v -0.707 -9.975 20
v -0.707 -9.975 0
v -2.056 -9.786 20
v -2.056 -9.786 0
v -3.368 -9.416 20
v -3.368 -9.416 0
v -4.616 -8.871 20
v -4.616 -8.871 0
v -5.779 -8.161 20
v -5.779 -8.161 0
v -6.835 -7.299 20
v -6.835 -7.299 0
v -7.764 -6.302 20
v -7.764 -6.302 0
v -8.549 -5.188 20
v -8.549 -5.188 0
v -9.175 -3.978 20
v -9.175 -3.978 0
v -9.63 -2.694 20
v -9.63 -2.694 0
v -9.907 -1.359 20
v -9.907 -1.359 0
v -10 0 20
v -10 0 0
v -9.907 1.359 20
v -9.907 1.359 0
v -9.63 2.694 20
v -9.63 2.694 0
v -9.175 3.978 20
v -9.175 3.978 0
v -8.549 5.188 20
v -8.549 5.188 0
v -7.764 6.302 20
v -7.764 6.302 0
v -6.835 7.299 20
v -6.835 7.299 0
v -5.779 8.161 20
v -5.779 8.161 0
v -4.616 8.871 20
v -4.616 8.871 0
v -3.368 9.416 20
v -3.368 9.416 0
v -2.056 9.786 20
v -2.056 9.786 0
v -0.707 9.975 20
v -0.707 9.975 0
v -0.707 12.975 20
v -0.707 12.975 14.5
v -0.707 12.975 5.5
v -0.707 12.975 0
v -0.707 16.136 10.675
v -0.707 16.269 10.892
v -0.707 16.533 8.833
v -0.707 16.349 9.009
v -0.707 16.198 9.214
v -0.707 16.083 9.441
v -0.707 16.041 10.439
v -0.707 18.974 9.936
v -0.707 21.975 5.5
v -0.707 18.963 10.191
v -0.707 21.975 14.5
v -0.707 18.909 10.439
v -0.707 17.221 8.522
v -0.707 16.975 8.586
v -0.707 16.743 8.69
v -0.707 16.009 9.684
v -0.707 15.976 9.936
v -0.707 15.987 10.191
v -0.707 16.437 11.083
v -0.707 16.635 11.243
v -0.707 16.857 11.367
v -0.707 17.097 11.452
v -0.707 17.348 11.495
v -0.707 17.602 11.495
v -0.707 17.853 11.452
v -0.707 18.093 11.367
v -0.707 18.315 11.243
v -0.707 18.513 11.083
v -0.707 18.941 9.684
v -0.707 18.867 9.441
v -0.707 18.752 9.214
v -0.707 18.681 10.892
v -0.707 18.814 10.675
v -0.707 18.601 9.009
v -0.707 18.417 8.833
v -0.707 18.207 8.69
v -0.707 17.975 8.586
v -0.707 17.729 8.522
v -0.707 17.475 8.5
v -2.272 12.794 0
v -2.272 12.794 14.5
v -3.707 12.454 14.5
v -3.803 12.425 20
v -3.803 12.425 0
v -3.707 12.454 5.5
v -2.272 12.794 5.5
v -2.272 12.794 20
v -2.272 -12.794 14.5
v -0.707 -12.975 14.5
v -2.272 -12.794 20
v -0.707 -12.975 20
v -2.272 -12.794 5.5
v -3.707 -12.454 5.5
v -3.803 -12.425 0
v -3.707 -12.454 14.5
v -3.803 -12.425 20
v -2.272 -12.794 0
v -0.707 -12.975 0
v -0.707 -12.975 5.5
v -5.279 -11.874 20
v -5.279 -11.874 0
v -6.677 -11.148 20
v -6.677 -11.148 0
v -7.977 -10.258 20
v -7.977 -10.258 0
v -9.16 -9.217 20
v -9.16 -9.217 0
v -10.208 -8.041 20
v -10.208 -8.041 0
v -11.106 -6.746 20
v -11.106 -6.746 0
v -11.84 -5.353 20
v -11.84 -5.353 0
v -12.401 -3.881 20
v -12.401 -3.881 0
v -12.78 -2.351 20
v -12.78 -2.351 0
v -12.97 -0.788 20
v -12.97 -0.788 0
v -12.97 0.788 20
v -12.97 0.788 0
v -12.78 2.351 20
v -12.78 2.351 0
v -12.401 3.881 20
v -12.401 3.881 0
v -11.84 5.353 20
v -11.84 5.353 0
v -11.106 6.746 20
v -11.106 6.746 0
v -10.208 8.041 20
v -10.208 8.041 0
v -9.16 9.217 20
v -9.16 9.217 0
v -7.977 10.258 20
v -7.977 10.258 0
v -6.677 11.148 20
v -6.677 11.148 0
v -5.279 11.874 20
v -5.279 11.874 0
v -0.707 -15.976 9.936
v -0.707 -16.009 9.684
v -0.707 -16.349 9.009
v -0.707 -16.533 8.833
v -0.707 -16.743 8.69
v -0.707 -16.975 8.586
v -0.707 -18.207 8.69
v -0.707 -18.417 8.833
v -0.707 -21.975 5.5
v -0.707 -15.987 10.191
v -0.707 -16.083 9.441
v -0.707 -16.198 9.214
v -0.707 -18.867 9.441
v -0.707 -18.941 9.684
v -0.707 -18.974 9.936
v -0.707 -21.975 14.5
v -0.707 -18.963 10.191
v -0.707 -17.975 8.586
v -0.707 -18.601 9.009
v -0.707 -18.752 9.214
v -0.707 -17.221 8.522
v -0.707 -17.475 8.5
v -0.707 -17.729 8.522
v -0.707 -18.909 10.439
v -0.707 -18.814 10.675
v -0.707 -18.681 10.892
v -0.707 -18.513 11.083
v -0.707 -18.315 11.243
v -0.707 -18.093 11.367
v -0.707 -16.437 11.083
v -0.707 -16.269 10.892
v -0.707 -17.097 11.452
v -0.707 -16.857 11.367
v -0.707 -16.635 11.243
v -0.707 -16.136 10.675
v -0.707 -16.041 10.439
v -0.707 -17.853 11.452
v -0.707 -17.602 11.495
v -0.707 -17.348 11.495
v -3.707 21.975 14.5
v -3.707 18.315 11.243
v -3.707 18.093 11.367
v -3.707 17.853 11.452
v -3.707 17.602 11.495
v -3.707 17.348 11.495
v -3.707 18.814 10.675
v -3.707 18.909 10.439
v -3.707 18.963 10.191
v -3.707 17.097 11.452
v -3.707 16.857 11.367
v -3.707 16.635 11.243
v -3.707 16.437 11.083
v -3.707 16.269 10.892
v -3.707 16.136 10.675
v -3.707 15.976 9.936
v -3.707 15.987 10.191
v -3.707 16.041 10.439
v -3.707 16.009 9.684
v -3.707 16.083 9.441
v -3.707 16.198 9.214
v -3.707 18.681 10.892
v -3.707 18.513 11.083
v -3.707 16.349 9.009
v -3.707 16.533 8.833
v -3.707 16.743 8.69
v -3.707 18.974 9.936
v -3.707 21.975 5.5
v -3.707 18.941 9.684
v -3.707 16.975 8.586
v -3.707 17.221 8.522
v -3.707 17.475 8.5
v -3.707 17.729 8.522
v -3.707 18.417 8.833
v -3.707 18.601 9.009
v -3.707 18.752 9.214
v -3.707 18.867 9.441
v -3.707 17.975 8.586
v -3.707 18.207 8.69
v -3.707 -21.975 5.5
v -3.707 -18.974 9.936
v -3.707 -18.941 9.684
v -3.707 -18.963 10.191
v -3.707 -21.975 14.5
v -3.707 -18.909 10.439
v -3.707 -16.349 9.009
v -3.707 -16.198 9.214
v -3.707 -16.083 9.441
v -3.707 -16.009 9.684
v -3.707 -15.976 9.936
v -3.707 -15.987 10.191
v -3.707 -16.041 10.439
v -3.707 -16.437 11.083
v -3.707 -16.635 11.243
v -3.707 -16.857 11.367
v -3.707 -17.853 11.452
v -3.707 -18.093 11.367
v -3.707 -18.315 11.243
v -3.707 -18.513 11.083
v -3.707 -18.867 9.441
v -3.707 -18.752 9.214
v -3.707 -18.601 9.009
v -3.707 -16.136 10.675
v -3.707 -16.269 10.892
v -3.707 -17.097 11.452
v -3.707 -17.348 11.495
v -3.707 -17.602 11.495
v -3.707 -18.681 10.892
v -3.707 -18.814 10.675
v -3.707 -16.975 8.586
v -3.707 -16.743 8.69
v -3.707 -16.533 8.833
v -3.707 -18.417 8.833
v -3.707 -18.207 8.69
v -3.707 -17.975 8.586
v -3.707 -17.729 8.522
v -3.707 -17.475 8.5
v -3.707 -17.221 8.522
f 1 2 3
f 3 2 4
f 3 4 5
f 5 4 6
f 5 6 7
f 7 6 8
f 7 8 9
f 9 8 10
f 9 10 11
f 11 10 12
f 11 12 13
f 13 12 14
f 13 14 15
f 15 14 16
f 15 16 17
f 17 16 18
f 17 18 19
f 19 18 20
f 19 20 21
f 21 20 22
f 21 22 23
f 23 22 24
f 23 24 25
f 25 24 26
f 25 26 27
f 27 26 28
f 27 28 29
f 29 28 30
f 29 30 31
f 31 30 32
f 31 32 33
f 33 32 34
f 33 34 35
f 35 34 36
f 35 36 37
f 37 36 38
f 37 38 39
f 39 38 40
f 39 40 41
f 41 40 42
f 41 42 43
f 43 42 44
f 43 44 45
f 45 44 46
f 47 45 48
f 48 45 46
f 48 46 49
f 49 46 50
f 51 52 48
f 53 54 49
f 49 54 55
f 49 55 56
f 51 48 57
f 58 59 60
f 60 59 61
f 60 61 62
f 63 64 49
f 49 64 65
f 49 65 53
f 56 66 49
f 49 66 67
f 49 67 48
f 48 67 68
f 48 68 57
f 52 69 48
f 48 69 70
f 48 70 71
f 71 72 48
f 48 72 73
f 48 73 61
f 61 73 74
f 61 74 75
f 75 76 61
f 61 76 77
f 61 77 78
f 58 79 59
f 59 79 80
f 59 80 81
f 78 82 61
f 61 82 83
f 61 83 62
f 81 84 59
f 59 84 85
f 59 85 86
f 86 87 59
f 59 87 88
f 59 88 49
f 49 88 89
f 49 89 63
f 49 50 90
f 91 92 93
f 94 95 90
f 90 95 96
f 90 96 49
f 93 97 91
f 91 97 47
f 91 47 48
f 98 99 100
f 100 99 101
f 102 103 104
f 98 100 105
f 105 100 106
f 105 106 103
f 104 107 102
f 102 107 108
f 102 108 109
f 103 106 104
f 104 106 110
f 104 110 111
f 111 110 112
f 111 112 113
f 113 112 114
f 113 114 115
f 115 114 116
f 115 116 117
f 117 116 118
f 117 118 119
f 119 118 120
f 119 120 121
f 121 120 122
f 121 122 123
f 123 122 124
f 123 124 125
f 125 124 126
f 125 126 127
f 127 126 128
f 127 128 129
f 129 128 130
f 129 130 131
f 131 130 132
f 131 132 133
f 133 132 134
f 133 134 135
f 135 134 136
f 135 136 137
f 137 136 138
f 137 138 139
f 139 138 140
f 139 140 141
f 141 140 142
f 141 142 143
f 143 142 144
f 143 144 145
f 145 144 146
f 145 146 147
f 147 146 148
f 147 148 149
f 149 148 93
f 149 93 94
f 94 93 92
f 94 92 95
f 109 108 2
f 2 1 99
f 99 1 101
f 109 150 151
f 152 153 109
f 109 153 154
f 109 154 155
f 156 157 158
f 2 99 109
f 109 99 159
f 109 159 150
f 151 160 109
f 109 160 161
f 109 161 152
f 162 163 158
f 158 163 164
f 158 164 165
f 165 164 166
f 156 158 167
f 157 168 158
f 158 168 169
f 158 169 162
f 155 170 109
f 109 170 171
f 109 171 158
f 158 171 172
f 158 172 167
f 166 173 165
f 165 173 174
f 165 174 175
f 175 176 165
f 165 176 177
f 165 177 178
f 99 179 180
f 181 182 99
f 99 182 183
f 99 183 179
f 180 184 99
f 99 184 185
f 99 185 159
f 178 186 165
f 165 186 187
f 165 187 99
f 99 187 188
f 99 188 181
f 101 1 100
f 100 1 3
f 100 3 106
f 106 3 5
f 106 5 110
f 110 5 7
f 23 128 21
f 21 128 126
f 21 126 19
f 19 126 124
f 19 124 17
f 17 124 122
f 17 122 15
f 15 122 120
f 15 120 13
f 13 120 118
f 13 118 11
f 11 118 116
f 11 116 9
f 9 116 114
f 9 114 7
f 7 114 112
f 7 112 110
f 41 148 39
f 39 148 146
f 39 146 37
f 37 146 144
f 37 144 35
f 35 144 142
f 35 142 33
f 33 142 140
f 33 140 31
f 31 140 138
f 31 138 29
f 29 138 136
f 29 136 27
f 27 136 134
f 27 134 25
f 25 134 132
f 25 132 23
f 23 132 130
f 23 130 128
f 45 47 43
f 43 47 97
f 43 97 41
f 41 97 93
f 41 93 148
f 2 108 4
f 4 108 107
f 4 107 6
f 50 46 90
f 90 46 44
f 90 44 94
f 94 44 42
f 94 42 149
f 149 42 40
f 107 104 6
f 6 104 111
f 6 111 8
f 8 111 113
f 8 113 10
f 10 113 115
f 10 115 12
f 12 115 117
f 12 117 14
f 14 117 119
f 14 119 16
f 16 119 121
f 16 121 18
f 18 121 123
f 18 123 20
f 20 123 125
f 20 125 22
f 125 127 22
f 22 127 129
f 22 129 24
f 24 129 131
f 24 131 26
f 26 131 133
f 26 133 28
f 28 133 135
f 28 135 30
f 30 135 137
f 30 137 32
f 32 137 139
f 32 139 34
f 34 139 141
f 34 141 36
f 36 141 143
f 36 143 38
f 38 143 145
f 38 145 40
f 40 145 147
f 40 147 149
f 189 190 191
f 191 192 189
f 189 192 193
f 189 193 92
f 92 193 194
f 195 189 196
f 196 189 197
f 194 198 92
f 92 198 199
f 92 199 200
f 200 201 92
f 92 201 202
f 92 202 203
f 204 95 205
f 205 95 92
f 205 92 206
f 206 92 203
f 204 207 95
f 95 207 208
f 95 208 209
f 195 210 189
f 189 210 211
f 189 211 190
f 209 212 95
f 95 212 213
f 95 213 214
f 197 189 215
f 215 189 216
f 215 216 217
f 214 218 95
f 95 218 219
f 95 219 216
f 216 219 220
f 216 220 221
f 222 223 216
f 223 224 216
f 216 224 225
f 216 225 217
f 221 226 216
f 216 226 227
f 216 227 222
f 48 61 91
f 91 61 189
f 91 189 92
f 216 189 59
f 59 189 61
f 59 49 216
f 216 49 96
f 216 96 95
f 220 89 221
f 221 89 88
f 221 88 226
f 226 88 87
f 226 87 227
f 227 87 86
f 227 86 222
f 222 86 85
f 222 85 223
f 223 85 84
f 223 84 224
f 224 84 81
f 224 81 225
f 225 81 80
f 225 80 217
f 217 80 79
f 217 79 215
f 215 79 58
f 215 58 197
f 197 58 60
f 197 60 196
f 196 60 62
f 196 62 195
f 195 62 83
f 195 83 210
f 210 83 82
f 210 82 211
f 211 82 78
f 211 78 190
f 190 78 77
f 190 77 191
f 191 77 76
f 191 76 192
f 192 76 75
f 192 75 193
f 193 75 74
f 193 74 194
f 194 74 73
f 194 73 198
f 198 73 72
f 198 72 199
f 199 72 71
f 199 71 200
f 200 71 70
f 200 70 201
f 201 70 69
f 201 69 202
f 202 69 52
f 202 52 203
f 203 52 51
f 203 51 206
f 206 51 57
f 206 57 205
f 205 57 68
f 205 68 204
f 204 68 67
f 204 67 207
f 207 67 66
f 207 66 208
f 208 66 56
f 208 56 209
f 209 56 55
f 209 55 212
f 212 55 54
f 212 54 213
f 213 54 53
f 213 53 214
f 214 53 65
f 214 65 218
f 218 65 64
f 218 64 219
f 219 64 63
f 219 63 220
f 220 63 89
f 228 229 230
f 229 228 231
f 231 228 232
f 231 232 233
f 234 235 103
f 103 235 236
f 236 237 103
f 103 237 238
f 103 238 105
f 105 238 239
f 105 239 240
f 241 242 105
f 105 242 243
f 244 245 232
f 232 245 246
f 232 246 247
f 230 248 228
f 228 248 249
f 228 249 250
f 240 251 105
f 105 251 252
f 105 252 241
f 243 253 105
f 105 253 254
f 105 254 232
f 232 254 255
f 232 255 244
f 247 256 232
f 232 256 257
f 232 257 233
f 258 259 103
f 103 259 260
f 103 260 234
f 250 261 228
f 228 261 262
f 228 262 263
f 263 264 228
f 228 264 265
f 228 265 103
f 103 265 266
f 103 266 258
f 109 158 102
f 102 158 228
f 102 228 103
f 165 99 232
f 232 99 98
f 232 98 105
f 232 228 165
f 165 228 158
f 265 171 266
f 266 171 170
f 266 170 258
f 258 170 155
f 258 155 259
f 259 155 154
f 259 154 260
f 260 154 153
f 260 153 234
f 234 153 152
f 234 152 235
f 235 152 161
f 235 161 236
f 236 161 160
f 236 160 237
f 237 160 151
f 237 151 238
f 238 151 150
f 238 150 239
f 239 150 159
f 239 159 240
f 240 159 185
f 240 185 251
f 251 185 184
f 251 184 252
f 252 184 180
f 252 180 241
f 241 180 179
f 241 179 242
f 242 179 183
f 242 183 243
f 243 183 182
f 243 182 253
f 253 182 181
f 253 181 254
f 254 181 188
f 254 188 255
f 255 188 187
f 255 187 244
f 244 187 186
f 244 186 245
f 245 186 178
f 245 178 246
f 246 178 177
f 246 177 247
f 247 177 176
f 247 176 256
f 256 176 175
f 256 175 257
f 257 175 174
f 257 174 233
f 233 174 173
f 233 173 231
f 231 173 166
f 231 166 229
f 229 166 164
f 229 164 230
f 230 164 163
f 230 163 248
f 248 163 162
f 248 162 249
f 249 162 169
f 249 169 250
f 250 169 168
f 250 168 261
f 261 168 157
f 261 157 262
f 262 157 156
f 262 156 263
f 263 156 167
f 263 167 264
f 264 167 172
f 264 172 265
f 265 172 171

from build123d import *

# Parameters (mm, degrees)
EXTRUDE_1_DEPTH = 20
SKETCH_3_R      = 1.5
EXTRUDE_2_DEPTH = 3


with BuildPart() as part:
    # Эскиз1 → Бобышка-Вытянуть1 (new body)
    with BuildSketch(Plane.XY):
        with BuildLine():
            Line((-0.706664701, 9.975), (-0.706664701, 12.975))
            ThreePointArc((-0.706664701, 12.975), (-12.994229489, 0), (-0.706664701, -12.975))
            Line((-0.706664701, -12.975), (-0.706664701, -9.975))
            ThreePointArc((-0.706664701, -9.975), (-10, 0), (-0.706664701, 9.975))
        make_face()
    extrude(amount=EXTRUDE_1_DEPTH)

    # Эскиз3 → Бобышка-Вытянуть2 (add)
    # profile 1 of 2: a face of its own
    with BuildSketch(Plane(origin=(-0.706664701, 0, 0), x_dir=(0, 0, -1), z_dir=(1, 0, 0))):
        Polygon((-10, 9.975), (-14.5, 9.975), (-14.5, 21.975), (-5.5, 21.975), (-5.5, 9.975), align=None)
        with Locations((-10, 17.475)):
            Circle(SKETCH_3_R, mode=Mode.SUBTRACT)
    # profile 2 of 2: a face of its own
    with BuildSketch(Plane(origin=(-0.706664701, 0, 0), x_dir=(0, 0, -1), z_dir=(1, 0, 0))):
        Polygon((-10, -9.975), (-14.5, -9.975), (-14.5, -21.975), (-5.5, -21.975), (-5.5, -9.975), align=None)
        with Locations((-10, -17.475)):
            Circle(SKETCH_3_R, mode=Mode.SUBTRACT)
    extrude(amount=-EXTRUDE_2_DEPTH)


solid = part.part
